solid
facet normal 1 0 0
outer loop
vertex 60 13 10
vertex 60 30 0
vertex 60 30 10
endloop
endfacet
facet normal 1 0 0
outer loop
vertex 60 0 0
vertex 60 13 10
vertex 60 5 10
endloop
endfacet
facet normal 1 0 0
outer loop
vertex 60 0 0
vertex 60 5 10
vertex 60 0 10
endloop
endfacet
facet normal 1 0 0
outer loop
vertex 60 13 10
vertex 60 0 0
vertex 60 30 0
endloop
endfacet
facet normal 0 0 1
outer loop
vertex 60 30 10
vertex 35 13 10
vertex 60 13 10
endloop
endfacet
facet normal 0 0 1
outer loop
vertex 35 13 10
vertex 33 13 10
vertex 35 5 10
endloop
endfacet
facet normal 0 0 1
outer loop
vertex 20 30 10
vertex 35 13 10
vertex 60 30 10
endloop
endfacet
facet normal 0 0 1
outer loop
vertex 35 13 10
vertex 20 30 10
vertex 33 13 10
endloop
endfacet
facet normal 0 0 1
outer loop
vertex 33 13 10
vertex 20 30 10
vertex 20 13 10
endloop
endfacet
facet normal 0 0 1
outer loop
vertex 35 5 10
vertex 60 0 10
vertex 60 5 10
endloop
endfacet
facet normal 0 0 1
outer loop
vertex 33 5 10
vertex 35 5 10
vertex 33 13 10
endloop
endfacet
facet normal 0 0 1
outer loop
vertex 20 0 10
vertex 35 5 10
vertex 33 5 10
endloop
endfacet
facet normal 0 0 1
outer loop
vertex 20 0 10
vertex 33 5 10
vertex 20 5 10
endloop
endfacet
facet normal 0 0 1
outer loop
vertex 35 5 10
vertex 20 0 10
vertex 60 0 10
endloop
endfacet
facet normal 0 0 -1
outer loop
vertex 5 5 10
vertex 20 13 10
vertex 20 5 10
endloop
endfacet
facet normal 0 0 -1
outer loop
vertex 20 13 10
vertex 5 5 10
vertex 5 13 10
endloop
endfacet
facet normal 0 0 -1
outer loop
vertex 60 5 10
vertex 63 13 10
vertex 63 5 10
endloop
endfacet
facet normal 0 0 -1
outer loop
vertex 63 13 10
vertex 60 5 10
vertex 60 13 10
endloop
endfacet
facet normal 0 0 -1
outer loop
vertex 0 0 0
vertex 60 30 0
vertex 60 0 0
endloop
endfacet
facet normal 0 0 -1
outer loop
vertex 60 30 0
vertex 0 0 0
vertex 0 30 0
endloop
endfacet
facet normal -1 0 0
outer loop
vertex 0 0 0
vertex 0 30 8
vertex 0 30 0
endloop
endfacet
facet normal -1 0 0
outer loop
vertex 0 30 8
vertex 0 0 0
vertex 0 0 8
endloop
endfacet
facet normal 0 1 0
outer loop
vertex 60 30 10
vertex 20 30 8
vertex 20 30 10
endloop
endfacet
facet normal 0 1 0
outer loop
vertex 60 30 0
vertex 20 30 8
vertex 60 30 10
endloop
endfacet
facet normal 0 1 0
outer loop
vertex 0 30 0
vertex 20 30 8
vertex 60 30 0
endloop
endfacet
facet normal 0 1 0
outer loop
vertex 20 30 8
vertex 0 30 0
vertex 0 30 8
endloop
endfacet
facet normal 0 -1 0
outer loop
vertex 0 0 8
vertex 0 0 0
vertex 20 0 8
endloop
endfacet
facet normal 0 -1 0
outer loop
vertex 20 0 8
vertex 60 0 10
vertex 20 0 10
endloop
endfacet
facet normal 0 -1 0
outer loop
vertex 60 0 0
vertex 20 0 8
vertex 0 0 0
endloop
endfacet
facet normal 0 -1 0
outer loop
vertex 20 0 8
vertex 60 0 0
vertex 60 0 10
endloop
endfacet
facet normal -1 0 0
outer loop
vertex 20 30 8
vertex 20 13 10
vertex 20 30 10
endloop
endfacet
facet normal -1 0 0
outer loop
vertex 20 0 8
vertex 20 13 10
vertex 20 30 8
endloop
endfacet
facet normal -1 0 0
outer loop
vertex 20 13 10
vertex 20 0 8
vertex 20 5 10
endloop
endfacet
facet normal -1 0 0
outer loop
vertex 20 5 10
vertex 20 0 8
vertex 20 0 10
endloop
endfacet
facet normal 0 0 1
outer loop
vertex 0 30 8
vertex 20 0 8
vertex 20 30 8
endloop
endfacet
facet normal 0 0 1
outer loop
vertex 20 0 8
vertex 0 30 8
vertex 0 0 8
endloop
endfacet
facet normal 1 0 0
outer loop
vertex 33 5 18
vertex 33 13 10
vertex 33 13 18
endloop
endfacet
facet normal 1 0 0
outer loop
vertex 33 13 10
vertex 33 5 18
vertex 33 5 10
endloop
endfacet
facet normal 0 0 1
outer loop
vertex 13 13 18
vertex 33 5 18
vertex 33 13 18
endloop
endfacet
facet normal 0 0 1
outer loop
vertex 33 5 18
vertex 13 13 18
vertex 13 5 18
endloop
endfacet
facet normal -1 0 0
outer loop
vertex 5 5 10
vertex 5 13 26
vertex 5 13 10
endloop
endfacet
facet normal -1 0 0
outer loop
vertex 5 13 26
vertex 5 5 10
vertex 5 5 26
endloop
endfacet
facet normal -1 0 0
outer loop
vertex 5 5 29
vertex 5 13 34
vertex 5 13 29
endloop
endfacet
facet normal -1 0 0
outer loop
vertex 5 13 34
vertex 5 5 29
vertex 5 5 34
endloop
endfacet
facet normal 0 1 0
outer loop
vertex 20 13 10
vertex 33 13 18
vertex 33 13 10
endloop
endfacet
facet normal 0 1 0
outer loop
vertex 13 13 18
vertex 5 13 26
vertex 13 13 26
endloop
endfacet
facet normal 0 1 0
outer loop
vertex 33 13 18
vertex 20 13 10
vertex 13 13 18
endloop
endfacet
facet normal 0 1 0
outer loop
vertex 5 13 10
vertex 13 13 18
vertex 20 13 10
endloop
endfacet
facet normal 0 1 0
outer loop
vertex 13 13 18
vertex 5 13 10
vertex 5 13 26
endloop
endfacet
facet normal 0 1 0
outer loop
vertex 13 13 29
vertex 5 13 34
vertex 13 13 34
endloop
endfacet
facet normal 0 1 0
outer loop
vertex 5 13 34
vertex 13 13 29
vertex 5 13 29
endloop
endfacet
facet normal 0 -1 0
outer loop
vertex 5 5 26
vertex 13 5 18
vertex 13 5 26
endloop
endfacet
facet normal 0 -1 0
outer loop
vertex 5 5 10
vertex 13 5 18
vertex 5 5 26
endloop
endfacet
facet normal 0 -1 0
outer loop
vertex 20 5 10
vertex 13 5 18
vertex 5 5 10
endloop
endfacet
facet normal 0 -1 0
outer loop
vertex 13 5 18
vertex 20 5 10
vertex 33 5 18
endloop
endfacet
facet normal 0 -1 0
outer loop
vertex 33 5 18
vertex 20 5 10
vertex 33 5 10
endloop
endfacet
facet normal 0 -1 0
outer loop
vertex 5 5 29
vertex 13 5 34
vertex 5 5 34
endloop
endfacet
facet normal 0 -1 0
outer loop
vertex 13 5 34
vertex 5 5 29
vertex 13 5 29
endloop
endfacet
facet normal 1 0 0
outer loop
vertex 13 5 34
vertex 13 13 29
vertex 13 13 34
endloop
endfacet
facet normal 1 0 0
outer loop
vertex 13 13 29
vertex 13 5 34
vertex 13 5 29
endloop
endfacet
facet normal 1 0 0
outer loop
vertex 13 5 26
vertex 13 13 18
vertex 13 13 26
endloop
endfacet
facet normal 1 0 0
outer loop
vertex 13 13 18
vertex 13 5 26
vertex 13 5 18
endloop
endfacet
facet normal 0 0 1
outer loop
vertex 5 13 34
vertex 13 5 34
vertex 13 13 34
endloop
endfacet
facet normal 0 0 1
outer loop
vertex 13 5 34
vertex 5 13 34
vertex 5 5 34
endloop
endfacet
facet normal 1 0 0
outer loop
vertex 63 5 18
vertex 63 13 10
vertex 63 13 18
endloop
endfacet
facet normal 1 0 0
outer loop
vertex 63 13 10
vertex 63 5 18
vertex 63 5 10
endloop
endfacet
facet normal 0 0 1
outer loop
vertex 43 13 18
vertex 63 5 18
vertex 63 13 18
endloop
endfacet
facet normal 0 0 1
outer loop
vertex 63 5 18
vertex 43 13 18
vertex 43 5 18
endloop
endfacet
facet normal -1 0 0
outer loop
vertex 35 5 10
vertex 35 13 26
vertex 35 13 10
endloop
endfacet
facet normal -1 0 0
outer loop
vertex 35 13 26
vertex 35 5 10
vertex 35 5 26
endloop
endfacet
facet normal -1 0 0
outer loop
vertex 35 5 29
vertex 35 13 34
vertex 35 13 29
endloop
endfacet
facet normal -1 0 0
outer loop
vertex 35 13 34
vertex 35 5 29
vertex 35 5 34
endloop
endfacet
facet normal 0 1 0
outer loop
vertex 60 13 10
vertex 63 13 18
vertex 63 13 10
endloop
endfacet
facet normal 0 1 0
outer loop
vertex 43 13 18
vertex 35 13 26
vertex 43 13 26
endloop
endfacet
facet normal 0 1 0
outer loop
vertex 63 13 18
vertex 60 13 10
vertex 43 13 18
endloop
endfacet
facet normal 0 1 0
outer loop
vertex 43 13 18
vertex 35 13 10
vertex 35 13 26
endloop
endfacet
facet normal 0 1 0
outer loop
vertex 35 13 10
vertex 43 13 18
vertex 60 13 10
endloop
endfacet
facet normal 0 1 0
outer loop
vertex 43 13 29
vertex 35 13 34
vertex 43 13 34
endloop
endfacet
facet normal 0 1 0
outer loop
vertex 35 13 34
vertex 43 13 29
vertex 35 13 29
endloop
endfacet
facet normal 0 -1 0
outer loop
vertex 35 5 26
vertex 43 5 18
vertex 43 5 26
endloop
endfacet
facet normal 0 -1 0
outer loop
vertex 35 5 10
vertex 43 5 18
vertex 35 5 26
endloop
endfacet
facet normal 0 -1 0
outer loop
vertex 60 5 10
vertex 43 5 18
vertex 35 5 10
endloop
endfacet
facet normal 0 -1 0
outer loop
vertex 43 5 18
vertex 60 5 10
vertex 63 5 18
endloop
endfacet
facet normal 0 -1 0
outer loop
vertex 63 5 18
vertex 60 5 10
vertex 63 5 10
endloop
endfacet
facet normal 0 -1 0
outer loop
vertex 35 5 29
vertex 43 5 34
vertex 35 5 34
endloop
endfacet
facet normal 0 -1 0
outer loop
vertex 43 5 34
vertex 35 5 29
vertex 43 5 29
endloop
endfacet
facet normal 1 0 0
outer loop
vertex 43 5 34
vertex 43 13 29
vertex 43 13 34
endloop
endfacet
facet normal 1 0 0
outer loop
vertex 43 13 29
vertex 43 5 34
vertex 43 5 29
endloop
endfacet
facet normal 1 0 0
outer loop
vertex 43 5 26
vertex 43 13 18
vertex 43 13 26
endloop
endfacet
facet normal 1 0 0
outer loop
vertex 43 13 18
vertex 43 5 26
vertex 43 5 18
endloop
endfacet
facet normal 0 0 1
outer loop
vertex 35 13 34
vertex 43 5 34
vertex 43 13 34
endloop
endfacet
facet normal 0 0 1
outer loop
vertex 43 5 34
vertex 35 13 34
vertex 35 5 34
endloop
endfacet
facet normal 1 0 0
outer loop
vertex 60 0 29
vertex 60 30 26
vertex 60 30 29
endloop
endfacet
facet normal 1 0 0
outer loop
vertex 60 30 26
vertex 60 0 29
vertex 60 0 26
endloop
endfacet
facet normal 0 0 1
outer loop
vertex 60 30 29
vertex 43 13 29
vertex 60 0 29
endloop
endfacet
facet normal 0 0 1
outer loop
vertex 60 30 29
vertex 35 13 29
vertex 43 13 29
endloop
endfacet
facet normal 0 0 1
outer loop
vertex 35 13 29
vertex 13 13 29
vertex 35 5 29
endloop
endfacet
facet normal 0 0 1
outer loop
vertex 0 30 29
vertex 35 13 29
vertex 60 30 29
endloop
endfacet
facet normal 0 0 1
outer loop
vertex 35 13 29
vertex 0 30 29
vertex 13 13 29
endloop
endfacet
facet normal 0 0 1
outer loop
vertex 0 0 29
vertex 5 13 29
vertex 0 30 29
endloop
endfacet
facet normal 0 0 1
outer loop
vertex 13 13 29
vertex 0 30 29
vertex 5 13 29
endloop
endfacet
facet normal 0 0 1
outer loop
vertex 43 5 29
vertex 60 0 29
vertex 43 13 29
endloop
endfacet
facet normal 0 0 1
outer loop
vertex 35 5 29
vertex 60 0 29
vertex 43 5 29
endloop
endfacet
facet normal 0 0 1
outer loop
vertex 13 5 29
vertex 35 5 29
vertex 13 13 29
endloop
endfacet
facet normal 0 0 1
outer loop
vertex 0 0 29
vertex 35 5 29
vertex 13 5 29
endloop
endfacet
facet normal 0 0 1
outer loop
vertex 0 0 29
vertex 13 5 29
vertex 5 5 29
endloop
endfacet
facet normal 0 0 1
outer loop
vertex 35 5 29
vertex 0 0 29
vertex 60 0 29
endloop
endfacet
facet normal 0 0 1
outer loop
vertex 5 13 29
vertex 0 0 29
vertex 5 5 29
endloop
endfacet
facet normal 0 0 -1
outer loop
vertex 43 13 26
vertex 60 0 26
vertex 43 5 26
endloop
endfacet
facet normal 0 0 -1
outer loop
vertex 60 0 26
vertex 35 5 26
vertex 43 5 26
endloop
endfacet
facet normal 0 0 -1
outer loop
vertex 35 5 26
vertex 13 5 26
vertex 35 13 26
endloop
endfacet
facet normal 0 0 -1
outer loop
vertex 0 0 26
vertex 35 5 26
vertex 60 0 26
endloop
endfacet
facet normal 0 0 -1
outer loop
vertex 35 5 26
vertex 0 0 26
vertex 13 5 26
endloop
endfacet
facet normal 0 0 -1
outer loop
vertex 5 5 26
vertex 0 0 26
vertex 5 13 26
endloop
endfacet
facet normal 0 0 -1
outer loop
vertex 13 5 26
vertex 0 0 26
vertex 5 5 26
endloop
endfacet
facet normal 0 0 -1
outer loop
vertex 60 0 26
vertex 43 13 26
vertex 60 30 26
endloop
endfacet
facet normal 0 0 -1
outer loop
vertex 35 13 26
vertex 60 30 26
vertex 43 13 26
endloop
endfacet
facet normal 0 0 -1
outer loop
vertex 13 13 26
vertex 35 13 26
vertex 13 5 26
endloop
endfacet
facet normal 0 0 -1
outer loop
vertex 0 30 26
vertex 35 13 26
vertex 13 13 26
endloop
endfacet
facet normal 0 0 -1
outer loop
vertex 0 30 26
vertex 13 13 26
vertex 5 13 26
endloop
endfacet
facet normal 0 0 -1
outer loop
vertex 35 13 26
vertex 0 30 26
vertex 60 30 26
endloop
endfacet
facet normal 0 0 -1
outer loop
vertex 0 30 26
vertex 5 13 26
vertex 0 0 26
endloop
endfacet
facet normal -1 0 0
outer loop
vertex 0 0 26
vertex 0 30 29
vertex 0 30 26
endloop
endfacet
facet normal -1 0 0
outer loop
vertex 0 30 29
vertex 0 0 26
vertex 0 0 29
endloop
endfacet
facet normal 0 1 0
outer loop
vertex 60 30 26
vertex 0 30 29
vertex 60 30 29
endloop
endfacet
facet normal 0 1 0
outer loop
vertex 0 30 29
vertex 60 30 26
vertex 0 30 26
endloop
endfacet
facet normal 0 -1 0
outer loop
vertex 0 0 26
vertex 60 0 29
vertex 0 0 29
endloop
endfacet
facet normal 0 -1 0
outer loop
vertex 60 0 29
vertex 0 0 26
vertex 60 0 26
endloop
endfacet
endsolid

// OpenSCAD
// Base Block
module base_block() {
    difference() {
        cube([60, 30, 10]); // Main block
        translate([0, 0, 8]) cube([20, 30, 6]); // Adjusted stepped cutout (reduced size and depth)
    }
}

// L-Shaped Connector
module l_shaped_connector() {
    union() {
        cube([28, 8, 8]); // Horizontal base
        translate([0, 0, 8]) cube([8, 8, 16]); // Adjusted vertical extension (reduced thickness)
    }
}

// Flat Rectangular Block
module flat_rectangular_block() {
    cube([60, 30, 3]); // Adjusted flat block (reduced thickness)
}

// Assembly
module assembly() {
    // Layer 3: Base Block
    base_block();

    // Layer 2: L-Shaped Connectors
    translate([5, 5, 10]) l_shaped_connector(); // Left connector
    translate([35, 5, 10]) l_shaped_connector(); // Right connector

    // Layer 1: Flat Rectangular Block
    translate([0, 0, 26]) flat_rectangular_block(); // Adjusted height to match changes
}

// Render the assembly
assembly();
